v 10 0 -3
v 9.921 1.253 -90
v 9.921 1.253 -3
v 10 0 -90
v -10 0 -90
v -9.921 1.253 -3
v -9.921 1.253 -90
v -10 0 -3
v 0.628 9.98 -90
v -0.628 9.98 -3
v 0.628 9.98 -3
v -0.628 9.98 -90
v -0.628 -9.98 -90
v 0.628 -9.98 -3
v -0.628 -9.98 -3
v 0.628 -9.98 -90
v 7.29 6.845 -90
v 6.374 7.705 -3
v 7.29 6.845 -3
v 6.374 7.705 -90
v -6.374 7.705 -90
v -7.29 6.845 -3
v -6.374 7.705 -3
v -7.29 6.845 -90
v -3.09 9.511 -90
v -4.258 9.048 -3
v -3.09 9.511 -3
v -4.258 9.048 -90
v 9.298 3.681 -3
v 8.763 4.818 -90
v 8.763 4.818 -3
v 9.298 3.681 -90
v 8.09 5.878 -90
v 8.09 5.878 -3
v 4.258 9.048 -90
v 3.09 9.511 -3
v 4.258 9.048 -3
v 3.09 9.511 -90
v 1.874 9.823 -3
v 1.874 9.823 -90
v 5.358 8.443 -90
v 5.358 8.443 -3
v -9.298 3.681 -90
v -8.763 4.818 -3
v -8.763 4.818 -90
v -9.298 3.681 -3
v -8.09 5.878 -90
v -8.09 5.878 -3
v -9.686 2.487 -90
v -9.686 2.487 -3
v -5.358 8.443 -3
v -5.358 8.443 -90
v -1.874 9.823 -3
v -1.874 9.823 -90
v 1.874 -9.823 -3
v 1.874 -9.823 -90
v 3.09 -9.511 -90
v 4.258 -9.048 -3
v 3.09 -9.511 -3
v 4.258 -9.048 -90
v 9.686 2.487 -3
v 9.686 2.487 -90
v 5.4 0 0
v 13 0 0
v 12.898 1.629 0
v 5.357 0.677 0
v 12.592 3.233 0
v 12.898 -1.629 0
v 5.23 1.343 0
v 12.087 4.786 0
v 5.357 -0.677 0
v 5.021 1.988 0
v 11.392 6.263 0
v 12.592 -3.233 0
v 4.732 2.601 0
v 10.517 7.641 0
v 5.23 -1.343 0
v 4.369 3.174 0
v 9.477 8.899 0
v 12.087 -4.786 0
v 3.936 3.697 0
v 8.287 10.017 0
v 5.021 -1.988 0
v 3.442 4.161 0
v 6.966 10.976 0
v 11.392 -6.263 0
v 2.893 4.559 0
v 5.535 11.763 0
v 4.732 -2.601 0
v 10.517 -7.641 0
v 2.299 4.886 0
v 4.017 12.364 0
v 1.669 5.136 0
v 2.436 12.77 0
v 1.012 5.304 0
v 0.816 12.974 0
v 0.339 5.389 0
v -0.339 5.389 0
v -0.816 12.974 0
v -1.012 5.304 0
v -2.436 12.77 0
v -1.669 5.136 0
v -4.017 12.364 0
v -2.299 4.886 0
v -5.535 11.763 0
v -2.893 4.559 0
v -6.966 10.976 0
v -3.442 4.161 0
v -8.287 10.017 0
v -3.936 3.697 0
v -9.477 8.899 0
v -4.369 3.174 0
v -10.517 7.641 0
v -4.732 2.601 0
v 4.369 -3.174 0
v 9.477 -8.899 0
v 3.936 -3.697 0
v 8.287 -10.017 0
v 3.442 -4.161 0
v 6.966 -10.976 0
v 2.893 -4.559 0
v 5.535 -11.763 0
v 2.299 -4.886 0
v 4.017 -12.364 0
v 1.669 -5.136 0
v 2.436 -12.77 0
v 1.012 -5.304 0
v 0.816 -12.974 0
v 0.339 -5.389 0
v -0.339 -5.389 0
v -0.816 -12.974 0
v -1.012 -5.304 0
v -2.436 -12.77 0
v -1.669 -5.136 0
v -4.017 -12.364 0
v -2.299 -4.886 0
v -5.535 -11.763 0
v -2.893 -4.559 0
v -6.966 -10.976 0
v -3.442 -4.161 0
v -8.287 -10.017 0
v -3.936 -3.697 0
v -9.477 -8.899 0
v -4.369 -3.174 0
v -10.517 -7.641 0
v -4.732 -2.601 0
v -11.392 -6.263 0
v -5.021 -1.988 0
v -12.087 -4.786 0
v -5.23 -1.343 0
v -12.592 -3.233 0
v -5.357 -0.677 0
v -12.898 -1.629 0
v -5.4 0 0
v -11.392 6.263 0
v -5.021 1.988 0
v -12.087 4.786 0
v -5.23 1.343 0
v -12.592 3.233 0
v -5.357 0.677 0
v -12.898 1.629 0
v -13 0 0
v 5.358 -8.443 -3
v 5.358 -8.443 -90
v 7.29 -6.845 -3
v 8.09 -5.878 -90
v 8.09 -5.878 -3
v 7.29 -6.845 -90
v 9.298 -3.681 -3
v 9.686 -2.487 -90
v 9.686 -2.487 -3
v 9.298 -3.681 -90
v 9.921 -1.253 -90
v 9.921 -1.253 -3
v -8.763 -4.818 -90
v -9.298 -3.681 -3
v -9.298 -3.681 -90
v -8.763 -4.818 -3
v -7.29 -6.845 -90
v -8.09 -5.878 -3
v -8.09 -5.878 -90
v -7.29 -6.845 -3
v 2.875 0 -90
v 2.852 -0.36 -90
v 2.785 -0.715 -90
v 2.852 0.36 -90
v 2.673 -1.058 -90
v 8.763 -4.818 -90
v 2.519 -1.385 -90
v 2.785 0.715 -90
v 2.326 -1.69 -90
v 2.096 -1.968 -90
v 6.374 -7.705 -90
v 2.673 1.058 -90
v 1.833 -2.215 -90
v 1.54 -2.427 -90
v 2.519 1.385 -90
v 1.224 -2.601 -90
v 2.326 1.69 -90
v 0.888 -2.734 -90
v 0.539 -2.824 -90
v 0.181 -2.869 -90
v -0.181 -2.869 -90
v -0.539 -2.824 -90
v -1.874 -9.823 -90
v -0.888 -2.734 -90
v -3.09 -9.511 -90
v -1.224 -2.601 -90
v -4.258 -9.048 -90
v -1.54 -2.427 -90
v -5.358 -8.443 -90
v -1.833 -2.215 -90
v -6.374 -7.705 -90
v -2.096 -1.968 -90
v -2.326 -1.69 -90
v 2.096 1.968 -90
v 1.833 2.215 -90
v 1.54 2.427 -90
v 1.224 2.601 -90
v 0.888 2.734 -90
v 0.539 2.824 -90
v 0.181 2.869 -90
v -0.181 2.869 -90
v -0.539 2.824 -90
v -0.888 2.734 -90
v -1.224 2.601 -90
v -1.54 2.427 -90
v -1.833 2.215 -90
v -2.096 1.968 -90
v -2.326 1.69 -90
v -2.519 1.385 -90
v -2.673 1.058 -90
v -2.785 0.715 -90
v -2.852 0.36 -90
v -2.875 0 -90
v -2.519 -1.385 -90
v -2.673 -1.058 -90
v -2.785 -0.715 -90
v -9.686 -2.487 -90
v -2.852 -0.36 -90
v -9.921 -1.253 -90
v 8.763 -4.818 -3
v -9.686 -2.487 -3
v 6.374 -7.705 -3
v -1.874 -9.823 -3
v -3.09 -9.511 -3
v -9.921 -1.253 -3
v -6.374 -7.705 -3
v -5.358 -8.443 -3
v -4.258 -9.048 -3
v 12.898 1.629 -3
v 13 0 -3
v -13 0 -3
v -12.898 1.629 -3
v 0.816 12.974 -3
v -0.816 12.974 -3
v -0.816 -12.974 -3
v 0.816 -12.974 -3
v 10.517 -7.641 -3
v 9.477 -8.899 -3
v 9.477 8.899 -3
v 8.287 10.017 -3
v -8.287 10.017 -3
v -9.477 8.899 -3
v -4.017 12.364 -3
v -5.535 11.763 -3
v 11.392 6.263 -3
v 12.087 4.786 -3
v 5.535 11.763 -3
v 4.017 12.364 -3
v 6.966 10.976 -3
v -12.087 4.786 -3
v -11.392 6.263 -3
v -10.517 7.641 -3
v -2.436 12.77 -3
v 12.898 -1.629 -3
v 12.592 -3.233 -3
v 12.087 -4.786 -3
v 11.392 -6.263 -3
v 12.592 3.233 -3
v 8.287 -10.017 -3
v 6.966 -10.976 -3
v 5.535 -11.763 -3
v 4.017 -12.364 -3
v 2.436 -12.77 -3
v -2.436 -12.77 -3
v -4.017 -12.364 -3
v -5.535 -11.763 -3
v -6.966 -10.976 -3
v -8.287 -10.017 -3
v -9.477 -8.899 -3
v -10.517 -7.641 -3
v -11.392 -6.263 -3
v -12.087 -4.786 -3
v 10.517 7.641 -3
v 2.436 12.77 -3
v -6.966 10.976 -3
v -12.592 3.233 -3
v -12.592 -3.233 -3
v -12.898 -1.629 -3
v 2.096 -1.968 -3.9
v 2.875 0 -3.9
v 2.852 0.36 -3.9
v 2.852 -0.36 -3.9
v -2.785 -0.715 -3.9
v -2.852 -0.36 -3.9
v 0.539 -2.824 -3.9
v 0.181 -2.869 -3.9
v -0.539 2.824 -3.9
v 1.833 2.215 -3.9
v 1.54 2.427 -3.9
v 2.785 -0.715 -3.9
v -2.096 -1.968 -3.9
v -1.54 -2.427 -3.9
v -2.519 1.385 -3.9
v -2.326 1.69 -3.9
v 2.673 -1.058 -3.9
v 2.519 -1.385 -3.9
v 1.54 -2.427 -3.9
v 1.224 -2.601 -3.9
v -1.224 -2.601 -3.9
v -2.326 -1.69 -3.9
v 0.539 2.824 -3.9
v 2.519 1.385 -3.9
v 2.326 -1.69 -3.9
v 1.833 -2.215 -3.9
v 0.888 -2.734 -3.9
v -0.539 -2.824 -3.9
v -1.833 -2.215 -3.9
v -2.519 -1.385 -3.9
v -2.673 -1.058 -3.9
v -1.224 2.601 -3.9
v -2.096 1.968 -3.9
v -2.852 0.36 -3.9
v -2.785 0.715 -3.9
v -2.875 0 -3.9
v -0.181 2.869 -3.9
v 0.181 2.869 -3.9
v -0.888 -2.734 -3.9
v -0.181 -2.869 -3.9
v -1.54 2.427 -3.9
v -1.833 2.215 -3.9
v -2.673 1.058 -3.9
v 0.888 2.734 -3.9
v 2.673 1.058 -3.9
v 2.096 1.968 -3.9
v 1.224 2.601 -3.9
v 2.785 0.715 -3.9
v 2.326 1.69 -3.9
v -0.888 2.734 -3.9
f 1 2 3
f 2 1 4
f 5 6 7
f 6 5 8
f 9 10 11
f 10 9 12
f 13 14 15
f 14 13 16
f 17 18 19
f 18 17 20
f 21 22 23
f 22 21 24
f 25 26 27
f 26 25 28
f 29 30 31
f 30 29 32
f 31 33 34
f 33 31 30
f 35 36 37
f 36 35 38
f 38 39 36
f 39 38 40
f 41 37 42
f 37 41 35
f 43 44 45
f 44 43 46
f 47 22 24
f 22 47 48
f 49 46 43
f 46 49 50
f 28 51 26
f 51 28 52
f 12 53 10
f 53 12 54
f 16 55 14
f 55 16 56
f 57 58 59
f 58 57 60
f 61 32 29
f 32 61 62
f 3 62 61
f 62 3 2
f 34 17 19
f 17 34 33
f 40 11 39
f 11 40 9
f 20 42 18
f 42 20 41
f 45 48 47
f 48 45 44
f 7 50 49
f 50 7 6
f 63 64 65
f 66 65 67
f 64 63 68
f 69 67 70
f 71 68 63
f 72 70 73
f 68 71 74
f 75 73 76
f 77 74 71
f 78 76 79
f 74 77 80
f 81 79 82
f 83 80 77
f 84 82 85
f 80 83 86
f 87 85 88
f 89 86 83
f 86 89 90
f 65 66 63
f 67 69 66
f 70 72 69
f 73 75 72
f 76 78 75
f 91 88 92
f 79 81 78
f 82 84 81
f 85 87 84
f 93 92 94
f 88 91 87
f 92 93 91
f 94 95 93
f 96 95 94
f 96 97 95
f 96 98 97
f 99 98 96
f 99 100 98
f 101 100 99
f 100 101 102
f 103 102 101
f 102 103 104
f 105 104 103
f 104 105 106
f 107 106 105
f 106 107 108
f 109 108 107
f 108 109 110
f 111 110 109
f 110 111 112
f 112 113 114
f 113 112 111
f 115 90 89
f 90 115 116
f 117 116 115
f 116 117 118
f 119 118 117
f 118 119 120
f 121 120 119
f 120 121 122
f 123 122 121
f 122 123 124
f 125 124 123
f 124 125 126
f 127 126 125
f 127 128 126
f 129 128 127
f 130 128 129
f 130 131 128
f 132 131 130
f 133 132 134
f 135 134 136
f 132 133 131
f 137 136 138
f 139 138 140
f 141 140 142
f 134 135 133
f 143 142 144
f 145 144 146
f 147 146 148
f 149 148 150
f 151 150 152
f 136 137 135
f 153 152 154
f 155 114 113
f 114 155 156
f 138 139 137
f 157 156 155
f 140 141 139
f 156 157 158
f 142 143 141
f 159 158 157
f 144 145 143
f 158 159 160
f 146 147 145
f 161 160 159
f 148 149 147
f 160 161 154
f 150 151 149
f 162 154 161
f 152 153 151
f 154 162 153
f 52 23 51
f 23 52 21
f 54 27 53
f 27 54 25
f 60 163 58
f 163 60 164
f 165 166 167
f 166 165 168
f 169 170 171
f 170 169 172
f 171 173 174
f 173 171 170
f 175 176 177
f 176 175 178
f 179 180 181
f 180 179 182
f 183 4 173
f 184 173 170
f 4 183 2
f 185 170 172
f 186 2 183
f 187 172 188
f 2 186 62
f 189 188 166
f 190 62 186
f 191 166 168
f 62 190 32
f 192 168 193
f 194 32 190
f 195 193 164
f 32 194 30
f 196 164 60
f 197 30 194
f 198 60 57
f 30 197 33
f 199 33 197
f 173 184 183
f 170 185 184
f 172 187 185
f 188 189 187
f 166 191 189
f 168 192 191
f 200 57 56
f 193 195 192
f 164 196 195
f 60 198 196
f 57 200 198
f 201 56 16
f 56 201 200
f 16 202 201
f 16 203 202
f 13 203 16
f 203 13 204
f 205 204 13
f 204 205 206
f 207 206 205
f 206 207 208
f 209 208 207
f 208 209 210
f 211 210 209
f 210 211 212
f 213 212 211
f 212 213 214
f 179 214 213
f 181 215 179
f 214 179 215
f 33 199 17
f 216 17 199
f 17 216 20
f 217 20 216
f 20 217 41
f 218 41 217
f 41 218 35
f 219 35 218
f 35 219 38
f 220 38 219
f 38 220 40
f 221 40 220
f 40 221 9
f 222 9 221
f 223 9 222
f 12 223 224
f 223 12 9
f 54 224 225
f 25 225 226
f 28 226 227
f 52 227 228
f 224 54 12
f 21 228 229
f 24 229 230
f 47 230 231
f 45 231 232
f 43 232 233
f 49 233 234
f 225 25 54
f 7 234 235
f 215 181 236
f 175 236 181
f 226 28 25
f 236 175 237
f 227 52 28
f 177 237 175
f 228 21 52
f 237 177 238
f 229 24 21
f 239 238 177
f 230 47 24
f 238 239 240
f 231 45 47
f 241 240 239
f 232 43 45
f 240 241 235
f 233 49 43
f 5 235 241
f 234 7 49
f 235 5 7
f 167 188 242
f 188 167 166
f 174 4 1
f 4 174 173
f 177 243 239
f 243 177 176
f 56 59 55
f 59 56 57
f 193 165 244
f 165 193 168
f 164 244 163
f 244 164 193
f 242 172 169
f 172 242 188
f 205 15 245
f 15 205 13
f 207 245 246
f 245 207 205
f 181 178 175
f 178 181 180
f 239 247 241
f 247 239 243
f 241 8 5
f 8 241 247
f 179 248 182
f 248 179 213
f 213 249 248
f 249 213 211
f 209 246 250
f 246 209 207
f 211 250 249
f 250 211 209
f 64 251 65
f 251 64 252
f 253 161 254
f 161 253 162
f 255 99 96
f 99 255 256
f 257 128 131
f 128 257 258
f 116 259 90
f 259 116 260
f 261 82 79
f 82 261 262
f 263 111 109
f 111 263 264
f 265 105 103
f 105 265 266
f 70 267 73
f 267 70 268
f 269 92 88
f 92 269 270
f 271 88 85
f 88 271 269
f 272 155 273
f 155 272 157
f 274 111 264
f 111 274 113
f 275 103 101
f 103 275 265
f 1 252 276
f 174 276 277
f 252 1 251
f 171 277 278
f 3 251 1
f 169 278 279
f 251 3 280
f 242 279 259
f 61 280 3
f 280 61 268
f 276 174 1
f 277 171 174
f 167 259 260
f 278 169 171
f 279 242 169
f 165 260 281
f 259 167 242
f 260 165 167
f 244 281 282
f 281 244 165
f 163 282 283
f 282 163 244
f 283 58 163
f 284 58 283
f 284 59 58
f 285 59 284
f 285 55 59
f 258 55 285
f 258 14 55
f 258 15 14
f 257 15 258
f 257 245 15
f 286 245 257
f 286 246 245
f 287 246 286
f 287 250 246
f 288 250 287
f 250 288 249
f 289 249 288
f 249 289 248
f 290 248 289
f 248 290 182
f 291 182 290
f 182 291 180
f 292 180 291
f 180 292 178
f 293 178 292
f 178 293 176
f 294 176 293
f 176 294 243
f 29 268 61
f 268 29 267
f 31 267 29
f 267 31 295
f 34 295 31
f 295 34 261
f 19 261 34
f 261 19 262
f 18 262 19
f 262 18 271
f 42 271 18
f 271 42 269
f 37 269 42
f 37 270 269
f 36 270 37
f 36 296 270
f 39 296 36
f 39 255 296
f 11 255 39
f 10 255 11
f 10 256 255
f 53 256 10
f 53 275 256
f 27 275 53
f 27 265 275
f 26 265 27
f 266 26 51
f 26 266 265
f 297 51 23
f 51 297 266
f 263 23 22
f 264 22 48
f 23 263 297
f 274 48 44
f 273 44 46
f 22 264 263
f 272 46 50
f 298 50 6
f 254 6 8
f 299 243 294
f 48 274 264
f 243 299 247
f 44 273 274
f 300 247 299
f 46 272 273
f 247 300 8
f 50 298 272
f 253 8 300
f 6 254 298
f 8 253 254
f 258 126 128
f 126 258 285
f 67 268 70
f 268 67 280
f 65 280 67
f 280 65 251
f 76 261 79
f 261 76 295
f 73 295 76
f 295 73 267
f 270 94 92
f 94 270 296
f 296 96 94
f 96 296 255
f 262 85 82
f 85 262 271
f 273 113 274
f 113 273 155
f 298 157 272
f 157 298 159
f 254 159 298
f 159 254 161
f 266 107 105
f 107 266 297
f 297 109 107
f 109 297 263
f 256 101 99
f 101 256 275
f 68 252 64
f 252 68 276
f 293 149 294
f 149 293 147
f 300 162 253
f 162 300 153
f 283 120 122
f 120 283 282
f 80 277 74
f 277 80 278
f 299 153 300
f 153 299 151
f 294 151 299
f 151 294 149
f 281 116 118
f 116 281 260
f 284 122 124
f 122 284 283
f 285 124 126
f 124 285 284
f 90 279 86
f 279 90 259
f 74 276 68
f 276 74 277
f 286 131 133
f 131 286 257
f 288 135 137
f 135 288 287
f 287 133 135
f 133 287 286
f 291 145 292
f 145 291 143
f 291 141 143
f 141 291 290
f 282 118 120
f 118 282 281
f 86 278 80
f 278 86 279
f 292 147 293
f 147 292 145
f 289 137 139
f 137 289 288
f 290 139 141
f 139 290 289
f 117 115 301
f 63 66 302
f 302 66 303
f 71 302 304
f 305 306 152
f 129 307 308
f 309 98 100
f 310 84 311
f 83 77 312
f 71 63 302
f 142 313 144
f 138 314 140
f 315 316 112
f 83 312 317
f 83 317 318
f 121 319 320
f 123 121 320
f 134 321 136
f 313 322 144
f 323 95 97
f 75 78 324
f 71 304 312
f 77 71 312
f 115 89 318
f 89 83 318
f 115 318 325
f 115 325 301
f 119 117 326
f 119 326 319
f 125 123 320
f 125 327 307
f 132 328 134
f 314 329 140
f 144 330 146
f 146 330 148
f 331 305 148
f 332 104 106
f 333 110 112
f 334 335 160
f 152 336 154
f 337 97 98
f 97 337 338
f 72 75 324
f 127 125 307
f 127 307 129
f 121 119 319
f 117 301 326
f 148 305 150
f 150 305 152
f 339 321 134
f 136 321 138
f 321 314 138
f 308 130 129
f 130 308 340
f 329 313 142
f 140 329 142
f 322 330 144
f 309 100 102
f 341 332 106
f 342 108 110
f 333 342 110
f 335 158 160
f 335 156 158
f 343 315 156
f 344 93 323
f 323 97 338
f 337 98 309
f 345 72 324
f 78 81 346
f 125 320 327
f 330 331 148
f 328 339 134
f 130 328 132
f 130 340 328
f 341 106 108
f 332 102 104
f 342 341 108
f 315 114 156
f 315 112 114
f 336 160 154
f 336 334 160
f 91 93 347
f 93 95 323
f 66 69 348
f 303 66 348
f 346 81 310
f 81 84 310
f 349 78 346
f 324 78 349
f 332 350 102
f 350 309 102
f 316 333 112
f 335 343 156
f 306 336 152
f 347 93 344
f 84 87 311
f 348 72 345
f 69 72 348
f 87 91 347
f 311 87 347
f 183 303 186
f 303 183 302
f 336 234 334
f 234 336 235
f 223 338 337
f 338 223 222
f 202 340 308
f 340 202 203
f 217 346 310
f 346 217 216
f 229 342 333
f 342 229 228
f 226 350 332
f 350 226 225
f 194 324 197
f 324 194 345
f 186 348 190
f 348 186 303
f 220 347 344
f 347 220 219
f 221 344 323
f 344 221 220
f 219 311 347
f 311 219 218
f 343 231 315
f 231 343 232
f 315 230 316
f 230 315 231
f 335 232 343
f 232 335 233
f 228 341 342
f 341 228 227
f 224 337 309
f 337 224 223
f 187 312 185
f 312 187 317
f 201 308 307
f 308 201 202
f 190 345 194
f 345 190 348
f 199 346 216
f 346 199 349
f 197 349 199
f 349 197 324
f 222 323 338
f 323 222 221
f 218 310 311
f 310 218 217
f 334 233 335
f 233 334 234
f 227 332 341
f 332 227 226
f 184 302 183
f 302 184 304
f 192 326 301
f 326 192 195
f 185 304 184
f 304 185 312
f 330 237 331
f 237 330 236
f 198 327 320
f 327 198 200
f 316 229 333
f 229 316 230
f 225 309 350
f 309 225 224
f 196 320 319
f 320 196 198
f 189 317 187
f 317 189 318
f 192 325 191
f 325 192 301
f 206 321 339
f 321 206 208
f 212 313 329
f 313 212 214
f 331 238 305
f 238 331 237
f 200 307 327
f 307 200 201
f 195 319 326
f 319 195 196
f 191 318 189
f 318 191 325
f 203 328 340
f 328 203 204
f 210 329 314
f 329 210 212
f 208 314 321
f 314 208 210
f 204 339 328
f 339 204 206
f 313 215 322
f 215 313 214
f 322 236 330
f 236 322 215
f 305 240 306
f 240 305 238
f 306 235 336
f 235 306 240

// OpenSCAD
$fn = 50;


difference() {
	union() {
		translate(v = [0, 0, -90.0000000000]) {
			cylinder(h = 90, r = 10.0000000000);
		}
		translate(v = [0, 0, -3.0000000000]) {
			cylinder(h = 3, r = 13.0000000000);
		}
	}
	union() {
		translate(v = [0, 0, 0]) {
			rotate(a = [0, 0, 0]) {
				difference() {
					union() {
						#translate(v = [0, 0, -90.0000000000]) {
							cylinder(h = 90, r = 2.6000000000);
						}
						#translate(v = [0, 0, -3.9000000000]) {
							cylinder(h = 3.9000000000, r = 10.0000000000, r1 = 2.8750000000, r2 = 5.4000000000);
						}
						#translate(v = [0, 0, -90.0000000000]) {
							cylinder(h = 90, r = 2.8750000000);
						}
						#translate(v = [0, 0, -90.0000000000]) {
							cylinder(h = 90, r = 2.6000000000);
						}
					}
					union();
				}
			}
		}
	}
}
